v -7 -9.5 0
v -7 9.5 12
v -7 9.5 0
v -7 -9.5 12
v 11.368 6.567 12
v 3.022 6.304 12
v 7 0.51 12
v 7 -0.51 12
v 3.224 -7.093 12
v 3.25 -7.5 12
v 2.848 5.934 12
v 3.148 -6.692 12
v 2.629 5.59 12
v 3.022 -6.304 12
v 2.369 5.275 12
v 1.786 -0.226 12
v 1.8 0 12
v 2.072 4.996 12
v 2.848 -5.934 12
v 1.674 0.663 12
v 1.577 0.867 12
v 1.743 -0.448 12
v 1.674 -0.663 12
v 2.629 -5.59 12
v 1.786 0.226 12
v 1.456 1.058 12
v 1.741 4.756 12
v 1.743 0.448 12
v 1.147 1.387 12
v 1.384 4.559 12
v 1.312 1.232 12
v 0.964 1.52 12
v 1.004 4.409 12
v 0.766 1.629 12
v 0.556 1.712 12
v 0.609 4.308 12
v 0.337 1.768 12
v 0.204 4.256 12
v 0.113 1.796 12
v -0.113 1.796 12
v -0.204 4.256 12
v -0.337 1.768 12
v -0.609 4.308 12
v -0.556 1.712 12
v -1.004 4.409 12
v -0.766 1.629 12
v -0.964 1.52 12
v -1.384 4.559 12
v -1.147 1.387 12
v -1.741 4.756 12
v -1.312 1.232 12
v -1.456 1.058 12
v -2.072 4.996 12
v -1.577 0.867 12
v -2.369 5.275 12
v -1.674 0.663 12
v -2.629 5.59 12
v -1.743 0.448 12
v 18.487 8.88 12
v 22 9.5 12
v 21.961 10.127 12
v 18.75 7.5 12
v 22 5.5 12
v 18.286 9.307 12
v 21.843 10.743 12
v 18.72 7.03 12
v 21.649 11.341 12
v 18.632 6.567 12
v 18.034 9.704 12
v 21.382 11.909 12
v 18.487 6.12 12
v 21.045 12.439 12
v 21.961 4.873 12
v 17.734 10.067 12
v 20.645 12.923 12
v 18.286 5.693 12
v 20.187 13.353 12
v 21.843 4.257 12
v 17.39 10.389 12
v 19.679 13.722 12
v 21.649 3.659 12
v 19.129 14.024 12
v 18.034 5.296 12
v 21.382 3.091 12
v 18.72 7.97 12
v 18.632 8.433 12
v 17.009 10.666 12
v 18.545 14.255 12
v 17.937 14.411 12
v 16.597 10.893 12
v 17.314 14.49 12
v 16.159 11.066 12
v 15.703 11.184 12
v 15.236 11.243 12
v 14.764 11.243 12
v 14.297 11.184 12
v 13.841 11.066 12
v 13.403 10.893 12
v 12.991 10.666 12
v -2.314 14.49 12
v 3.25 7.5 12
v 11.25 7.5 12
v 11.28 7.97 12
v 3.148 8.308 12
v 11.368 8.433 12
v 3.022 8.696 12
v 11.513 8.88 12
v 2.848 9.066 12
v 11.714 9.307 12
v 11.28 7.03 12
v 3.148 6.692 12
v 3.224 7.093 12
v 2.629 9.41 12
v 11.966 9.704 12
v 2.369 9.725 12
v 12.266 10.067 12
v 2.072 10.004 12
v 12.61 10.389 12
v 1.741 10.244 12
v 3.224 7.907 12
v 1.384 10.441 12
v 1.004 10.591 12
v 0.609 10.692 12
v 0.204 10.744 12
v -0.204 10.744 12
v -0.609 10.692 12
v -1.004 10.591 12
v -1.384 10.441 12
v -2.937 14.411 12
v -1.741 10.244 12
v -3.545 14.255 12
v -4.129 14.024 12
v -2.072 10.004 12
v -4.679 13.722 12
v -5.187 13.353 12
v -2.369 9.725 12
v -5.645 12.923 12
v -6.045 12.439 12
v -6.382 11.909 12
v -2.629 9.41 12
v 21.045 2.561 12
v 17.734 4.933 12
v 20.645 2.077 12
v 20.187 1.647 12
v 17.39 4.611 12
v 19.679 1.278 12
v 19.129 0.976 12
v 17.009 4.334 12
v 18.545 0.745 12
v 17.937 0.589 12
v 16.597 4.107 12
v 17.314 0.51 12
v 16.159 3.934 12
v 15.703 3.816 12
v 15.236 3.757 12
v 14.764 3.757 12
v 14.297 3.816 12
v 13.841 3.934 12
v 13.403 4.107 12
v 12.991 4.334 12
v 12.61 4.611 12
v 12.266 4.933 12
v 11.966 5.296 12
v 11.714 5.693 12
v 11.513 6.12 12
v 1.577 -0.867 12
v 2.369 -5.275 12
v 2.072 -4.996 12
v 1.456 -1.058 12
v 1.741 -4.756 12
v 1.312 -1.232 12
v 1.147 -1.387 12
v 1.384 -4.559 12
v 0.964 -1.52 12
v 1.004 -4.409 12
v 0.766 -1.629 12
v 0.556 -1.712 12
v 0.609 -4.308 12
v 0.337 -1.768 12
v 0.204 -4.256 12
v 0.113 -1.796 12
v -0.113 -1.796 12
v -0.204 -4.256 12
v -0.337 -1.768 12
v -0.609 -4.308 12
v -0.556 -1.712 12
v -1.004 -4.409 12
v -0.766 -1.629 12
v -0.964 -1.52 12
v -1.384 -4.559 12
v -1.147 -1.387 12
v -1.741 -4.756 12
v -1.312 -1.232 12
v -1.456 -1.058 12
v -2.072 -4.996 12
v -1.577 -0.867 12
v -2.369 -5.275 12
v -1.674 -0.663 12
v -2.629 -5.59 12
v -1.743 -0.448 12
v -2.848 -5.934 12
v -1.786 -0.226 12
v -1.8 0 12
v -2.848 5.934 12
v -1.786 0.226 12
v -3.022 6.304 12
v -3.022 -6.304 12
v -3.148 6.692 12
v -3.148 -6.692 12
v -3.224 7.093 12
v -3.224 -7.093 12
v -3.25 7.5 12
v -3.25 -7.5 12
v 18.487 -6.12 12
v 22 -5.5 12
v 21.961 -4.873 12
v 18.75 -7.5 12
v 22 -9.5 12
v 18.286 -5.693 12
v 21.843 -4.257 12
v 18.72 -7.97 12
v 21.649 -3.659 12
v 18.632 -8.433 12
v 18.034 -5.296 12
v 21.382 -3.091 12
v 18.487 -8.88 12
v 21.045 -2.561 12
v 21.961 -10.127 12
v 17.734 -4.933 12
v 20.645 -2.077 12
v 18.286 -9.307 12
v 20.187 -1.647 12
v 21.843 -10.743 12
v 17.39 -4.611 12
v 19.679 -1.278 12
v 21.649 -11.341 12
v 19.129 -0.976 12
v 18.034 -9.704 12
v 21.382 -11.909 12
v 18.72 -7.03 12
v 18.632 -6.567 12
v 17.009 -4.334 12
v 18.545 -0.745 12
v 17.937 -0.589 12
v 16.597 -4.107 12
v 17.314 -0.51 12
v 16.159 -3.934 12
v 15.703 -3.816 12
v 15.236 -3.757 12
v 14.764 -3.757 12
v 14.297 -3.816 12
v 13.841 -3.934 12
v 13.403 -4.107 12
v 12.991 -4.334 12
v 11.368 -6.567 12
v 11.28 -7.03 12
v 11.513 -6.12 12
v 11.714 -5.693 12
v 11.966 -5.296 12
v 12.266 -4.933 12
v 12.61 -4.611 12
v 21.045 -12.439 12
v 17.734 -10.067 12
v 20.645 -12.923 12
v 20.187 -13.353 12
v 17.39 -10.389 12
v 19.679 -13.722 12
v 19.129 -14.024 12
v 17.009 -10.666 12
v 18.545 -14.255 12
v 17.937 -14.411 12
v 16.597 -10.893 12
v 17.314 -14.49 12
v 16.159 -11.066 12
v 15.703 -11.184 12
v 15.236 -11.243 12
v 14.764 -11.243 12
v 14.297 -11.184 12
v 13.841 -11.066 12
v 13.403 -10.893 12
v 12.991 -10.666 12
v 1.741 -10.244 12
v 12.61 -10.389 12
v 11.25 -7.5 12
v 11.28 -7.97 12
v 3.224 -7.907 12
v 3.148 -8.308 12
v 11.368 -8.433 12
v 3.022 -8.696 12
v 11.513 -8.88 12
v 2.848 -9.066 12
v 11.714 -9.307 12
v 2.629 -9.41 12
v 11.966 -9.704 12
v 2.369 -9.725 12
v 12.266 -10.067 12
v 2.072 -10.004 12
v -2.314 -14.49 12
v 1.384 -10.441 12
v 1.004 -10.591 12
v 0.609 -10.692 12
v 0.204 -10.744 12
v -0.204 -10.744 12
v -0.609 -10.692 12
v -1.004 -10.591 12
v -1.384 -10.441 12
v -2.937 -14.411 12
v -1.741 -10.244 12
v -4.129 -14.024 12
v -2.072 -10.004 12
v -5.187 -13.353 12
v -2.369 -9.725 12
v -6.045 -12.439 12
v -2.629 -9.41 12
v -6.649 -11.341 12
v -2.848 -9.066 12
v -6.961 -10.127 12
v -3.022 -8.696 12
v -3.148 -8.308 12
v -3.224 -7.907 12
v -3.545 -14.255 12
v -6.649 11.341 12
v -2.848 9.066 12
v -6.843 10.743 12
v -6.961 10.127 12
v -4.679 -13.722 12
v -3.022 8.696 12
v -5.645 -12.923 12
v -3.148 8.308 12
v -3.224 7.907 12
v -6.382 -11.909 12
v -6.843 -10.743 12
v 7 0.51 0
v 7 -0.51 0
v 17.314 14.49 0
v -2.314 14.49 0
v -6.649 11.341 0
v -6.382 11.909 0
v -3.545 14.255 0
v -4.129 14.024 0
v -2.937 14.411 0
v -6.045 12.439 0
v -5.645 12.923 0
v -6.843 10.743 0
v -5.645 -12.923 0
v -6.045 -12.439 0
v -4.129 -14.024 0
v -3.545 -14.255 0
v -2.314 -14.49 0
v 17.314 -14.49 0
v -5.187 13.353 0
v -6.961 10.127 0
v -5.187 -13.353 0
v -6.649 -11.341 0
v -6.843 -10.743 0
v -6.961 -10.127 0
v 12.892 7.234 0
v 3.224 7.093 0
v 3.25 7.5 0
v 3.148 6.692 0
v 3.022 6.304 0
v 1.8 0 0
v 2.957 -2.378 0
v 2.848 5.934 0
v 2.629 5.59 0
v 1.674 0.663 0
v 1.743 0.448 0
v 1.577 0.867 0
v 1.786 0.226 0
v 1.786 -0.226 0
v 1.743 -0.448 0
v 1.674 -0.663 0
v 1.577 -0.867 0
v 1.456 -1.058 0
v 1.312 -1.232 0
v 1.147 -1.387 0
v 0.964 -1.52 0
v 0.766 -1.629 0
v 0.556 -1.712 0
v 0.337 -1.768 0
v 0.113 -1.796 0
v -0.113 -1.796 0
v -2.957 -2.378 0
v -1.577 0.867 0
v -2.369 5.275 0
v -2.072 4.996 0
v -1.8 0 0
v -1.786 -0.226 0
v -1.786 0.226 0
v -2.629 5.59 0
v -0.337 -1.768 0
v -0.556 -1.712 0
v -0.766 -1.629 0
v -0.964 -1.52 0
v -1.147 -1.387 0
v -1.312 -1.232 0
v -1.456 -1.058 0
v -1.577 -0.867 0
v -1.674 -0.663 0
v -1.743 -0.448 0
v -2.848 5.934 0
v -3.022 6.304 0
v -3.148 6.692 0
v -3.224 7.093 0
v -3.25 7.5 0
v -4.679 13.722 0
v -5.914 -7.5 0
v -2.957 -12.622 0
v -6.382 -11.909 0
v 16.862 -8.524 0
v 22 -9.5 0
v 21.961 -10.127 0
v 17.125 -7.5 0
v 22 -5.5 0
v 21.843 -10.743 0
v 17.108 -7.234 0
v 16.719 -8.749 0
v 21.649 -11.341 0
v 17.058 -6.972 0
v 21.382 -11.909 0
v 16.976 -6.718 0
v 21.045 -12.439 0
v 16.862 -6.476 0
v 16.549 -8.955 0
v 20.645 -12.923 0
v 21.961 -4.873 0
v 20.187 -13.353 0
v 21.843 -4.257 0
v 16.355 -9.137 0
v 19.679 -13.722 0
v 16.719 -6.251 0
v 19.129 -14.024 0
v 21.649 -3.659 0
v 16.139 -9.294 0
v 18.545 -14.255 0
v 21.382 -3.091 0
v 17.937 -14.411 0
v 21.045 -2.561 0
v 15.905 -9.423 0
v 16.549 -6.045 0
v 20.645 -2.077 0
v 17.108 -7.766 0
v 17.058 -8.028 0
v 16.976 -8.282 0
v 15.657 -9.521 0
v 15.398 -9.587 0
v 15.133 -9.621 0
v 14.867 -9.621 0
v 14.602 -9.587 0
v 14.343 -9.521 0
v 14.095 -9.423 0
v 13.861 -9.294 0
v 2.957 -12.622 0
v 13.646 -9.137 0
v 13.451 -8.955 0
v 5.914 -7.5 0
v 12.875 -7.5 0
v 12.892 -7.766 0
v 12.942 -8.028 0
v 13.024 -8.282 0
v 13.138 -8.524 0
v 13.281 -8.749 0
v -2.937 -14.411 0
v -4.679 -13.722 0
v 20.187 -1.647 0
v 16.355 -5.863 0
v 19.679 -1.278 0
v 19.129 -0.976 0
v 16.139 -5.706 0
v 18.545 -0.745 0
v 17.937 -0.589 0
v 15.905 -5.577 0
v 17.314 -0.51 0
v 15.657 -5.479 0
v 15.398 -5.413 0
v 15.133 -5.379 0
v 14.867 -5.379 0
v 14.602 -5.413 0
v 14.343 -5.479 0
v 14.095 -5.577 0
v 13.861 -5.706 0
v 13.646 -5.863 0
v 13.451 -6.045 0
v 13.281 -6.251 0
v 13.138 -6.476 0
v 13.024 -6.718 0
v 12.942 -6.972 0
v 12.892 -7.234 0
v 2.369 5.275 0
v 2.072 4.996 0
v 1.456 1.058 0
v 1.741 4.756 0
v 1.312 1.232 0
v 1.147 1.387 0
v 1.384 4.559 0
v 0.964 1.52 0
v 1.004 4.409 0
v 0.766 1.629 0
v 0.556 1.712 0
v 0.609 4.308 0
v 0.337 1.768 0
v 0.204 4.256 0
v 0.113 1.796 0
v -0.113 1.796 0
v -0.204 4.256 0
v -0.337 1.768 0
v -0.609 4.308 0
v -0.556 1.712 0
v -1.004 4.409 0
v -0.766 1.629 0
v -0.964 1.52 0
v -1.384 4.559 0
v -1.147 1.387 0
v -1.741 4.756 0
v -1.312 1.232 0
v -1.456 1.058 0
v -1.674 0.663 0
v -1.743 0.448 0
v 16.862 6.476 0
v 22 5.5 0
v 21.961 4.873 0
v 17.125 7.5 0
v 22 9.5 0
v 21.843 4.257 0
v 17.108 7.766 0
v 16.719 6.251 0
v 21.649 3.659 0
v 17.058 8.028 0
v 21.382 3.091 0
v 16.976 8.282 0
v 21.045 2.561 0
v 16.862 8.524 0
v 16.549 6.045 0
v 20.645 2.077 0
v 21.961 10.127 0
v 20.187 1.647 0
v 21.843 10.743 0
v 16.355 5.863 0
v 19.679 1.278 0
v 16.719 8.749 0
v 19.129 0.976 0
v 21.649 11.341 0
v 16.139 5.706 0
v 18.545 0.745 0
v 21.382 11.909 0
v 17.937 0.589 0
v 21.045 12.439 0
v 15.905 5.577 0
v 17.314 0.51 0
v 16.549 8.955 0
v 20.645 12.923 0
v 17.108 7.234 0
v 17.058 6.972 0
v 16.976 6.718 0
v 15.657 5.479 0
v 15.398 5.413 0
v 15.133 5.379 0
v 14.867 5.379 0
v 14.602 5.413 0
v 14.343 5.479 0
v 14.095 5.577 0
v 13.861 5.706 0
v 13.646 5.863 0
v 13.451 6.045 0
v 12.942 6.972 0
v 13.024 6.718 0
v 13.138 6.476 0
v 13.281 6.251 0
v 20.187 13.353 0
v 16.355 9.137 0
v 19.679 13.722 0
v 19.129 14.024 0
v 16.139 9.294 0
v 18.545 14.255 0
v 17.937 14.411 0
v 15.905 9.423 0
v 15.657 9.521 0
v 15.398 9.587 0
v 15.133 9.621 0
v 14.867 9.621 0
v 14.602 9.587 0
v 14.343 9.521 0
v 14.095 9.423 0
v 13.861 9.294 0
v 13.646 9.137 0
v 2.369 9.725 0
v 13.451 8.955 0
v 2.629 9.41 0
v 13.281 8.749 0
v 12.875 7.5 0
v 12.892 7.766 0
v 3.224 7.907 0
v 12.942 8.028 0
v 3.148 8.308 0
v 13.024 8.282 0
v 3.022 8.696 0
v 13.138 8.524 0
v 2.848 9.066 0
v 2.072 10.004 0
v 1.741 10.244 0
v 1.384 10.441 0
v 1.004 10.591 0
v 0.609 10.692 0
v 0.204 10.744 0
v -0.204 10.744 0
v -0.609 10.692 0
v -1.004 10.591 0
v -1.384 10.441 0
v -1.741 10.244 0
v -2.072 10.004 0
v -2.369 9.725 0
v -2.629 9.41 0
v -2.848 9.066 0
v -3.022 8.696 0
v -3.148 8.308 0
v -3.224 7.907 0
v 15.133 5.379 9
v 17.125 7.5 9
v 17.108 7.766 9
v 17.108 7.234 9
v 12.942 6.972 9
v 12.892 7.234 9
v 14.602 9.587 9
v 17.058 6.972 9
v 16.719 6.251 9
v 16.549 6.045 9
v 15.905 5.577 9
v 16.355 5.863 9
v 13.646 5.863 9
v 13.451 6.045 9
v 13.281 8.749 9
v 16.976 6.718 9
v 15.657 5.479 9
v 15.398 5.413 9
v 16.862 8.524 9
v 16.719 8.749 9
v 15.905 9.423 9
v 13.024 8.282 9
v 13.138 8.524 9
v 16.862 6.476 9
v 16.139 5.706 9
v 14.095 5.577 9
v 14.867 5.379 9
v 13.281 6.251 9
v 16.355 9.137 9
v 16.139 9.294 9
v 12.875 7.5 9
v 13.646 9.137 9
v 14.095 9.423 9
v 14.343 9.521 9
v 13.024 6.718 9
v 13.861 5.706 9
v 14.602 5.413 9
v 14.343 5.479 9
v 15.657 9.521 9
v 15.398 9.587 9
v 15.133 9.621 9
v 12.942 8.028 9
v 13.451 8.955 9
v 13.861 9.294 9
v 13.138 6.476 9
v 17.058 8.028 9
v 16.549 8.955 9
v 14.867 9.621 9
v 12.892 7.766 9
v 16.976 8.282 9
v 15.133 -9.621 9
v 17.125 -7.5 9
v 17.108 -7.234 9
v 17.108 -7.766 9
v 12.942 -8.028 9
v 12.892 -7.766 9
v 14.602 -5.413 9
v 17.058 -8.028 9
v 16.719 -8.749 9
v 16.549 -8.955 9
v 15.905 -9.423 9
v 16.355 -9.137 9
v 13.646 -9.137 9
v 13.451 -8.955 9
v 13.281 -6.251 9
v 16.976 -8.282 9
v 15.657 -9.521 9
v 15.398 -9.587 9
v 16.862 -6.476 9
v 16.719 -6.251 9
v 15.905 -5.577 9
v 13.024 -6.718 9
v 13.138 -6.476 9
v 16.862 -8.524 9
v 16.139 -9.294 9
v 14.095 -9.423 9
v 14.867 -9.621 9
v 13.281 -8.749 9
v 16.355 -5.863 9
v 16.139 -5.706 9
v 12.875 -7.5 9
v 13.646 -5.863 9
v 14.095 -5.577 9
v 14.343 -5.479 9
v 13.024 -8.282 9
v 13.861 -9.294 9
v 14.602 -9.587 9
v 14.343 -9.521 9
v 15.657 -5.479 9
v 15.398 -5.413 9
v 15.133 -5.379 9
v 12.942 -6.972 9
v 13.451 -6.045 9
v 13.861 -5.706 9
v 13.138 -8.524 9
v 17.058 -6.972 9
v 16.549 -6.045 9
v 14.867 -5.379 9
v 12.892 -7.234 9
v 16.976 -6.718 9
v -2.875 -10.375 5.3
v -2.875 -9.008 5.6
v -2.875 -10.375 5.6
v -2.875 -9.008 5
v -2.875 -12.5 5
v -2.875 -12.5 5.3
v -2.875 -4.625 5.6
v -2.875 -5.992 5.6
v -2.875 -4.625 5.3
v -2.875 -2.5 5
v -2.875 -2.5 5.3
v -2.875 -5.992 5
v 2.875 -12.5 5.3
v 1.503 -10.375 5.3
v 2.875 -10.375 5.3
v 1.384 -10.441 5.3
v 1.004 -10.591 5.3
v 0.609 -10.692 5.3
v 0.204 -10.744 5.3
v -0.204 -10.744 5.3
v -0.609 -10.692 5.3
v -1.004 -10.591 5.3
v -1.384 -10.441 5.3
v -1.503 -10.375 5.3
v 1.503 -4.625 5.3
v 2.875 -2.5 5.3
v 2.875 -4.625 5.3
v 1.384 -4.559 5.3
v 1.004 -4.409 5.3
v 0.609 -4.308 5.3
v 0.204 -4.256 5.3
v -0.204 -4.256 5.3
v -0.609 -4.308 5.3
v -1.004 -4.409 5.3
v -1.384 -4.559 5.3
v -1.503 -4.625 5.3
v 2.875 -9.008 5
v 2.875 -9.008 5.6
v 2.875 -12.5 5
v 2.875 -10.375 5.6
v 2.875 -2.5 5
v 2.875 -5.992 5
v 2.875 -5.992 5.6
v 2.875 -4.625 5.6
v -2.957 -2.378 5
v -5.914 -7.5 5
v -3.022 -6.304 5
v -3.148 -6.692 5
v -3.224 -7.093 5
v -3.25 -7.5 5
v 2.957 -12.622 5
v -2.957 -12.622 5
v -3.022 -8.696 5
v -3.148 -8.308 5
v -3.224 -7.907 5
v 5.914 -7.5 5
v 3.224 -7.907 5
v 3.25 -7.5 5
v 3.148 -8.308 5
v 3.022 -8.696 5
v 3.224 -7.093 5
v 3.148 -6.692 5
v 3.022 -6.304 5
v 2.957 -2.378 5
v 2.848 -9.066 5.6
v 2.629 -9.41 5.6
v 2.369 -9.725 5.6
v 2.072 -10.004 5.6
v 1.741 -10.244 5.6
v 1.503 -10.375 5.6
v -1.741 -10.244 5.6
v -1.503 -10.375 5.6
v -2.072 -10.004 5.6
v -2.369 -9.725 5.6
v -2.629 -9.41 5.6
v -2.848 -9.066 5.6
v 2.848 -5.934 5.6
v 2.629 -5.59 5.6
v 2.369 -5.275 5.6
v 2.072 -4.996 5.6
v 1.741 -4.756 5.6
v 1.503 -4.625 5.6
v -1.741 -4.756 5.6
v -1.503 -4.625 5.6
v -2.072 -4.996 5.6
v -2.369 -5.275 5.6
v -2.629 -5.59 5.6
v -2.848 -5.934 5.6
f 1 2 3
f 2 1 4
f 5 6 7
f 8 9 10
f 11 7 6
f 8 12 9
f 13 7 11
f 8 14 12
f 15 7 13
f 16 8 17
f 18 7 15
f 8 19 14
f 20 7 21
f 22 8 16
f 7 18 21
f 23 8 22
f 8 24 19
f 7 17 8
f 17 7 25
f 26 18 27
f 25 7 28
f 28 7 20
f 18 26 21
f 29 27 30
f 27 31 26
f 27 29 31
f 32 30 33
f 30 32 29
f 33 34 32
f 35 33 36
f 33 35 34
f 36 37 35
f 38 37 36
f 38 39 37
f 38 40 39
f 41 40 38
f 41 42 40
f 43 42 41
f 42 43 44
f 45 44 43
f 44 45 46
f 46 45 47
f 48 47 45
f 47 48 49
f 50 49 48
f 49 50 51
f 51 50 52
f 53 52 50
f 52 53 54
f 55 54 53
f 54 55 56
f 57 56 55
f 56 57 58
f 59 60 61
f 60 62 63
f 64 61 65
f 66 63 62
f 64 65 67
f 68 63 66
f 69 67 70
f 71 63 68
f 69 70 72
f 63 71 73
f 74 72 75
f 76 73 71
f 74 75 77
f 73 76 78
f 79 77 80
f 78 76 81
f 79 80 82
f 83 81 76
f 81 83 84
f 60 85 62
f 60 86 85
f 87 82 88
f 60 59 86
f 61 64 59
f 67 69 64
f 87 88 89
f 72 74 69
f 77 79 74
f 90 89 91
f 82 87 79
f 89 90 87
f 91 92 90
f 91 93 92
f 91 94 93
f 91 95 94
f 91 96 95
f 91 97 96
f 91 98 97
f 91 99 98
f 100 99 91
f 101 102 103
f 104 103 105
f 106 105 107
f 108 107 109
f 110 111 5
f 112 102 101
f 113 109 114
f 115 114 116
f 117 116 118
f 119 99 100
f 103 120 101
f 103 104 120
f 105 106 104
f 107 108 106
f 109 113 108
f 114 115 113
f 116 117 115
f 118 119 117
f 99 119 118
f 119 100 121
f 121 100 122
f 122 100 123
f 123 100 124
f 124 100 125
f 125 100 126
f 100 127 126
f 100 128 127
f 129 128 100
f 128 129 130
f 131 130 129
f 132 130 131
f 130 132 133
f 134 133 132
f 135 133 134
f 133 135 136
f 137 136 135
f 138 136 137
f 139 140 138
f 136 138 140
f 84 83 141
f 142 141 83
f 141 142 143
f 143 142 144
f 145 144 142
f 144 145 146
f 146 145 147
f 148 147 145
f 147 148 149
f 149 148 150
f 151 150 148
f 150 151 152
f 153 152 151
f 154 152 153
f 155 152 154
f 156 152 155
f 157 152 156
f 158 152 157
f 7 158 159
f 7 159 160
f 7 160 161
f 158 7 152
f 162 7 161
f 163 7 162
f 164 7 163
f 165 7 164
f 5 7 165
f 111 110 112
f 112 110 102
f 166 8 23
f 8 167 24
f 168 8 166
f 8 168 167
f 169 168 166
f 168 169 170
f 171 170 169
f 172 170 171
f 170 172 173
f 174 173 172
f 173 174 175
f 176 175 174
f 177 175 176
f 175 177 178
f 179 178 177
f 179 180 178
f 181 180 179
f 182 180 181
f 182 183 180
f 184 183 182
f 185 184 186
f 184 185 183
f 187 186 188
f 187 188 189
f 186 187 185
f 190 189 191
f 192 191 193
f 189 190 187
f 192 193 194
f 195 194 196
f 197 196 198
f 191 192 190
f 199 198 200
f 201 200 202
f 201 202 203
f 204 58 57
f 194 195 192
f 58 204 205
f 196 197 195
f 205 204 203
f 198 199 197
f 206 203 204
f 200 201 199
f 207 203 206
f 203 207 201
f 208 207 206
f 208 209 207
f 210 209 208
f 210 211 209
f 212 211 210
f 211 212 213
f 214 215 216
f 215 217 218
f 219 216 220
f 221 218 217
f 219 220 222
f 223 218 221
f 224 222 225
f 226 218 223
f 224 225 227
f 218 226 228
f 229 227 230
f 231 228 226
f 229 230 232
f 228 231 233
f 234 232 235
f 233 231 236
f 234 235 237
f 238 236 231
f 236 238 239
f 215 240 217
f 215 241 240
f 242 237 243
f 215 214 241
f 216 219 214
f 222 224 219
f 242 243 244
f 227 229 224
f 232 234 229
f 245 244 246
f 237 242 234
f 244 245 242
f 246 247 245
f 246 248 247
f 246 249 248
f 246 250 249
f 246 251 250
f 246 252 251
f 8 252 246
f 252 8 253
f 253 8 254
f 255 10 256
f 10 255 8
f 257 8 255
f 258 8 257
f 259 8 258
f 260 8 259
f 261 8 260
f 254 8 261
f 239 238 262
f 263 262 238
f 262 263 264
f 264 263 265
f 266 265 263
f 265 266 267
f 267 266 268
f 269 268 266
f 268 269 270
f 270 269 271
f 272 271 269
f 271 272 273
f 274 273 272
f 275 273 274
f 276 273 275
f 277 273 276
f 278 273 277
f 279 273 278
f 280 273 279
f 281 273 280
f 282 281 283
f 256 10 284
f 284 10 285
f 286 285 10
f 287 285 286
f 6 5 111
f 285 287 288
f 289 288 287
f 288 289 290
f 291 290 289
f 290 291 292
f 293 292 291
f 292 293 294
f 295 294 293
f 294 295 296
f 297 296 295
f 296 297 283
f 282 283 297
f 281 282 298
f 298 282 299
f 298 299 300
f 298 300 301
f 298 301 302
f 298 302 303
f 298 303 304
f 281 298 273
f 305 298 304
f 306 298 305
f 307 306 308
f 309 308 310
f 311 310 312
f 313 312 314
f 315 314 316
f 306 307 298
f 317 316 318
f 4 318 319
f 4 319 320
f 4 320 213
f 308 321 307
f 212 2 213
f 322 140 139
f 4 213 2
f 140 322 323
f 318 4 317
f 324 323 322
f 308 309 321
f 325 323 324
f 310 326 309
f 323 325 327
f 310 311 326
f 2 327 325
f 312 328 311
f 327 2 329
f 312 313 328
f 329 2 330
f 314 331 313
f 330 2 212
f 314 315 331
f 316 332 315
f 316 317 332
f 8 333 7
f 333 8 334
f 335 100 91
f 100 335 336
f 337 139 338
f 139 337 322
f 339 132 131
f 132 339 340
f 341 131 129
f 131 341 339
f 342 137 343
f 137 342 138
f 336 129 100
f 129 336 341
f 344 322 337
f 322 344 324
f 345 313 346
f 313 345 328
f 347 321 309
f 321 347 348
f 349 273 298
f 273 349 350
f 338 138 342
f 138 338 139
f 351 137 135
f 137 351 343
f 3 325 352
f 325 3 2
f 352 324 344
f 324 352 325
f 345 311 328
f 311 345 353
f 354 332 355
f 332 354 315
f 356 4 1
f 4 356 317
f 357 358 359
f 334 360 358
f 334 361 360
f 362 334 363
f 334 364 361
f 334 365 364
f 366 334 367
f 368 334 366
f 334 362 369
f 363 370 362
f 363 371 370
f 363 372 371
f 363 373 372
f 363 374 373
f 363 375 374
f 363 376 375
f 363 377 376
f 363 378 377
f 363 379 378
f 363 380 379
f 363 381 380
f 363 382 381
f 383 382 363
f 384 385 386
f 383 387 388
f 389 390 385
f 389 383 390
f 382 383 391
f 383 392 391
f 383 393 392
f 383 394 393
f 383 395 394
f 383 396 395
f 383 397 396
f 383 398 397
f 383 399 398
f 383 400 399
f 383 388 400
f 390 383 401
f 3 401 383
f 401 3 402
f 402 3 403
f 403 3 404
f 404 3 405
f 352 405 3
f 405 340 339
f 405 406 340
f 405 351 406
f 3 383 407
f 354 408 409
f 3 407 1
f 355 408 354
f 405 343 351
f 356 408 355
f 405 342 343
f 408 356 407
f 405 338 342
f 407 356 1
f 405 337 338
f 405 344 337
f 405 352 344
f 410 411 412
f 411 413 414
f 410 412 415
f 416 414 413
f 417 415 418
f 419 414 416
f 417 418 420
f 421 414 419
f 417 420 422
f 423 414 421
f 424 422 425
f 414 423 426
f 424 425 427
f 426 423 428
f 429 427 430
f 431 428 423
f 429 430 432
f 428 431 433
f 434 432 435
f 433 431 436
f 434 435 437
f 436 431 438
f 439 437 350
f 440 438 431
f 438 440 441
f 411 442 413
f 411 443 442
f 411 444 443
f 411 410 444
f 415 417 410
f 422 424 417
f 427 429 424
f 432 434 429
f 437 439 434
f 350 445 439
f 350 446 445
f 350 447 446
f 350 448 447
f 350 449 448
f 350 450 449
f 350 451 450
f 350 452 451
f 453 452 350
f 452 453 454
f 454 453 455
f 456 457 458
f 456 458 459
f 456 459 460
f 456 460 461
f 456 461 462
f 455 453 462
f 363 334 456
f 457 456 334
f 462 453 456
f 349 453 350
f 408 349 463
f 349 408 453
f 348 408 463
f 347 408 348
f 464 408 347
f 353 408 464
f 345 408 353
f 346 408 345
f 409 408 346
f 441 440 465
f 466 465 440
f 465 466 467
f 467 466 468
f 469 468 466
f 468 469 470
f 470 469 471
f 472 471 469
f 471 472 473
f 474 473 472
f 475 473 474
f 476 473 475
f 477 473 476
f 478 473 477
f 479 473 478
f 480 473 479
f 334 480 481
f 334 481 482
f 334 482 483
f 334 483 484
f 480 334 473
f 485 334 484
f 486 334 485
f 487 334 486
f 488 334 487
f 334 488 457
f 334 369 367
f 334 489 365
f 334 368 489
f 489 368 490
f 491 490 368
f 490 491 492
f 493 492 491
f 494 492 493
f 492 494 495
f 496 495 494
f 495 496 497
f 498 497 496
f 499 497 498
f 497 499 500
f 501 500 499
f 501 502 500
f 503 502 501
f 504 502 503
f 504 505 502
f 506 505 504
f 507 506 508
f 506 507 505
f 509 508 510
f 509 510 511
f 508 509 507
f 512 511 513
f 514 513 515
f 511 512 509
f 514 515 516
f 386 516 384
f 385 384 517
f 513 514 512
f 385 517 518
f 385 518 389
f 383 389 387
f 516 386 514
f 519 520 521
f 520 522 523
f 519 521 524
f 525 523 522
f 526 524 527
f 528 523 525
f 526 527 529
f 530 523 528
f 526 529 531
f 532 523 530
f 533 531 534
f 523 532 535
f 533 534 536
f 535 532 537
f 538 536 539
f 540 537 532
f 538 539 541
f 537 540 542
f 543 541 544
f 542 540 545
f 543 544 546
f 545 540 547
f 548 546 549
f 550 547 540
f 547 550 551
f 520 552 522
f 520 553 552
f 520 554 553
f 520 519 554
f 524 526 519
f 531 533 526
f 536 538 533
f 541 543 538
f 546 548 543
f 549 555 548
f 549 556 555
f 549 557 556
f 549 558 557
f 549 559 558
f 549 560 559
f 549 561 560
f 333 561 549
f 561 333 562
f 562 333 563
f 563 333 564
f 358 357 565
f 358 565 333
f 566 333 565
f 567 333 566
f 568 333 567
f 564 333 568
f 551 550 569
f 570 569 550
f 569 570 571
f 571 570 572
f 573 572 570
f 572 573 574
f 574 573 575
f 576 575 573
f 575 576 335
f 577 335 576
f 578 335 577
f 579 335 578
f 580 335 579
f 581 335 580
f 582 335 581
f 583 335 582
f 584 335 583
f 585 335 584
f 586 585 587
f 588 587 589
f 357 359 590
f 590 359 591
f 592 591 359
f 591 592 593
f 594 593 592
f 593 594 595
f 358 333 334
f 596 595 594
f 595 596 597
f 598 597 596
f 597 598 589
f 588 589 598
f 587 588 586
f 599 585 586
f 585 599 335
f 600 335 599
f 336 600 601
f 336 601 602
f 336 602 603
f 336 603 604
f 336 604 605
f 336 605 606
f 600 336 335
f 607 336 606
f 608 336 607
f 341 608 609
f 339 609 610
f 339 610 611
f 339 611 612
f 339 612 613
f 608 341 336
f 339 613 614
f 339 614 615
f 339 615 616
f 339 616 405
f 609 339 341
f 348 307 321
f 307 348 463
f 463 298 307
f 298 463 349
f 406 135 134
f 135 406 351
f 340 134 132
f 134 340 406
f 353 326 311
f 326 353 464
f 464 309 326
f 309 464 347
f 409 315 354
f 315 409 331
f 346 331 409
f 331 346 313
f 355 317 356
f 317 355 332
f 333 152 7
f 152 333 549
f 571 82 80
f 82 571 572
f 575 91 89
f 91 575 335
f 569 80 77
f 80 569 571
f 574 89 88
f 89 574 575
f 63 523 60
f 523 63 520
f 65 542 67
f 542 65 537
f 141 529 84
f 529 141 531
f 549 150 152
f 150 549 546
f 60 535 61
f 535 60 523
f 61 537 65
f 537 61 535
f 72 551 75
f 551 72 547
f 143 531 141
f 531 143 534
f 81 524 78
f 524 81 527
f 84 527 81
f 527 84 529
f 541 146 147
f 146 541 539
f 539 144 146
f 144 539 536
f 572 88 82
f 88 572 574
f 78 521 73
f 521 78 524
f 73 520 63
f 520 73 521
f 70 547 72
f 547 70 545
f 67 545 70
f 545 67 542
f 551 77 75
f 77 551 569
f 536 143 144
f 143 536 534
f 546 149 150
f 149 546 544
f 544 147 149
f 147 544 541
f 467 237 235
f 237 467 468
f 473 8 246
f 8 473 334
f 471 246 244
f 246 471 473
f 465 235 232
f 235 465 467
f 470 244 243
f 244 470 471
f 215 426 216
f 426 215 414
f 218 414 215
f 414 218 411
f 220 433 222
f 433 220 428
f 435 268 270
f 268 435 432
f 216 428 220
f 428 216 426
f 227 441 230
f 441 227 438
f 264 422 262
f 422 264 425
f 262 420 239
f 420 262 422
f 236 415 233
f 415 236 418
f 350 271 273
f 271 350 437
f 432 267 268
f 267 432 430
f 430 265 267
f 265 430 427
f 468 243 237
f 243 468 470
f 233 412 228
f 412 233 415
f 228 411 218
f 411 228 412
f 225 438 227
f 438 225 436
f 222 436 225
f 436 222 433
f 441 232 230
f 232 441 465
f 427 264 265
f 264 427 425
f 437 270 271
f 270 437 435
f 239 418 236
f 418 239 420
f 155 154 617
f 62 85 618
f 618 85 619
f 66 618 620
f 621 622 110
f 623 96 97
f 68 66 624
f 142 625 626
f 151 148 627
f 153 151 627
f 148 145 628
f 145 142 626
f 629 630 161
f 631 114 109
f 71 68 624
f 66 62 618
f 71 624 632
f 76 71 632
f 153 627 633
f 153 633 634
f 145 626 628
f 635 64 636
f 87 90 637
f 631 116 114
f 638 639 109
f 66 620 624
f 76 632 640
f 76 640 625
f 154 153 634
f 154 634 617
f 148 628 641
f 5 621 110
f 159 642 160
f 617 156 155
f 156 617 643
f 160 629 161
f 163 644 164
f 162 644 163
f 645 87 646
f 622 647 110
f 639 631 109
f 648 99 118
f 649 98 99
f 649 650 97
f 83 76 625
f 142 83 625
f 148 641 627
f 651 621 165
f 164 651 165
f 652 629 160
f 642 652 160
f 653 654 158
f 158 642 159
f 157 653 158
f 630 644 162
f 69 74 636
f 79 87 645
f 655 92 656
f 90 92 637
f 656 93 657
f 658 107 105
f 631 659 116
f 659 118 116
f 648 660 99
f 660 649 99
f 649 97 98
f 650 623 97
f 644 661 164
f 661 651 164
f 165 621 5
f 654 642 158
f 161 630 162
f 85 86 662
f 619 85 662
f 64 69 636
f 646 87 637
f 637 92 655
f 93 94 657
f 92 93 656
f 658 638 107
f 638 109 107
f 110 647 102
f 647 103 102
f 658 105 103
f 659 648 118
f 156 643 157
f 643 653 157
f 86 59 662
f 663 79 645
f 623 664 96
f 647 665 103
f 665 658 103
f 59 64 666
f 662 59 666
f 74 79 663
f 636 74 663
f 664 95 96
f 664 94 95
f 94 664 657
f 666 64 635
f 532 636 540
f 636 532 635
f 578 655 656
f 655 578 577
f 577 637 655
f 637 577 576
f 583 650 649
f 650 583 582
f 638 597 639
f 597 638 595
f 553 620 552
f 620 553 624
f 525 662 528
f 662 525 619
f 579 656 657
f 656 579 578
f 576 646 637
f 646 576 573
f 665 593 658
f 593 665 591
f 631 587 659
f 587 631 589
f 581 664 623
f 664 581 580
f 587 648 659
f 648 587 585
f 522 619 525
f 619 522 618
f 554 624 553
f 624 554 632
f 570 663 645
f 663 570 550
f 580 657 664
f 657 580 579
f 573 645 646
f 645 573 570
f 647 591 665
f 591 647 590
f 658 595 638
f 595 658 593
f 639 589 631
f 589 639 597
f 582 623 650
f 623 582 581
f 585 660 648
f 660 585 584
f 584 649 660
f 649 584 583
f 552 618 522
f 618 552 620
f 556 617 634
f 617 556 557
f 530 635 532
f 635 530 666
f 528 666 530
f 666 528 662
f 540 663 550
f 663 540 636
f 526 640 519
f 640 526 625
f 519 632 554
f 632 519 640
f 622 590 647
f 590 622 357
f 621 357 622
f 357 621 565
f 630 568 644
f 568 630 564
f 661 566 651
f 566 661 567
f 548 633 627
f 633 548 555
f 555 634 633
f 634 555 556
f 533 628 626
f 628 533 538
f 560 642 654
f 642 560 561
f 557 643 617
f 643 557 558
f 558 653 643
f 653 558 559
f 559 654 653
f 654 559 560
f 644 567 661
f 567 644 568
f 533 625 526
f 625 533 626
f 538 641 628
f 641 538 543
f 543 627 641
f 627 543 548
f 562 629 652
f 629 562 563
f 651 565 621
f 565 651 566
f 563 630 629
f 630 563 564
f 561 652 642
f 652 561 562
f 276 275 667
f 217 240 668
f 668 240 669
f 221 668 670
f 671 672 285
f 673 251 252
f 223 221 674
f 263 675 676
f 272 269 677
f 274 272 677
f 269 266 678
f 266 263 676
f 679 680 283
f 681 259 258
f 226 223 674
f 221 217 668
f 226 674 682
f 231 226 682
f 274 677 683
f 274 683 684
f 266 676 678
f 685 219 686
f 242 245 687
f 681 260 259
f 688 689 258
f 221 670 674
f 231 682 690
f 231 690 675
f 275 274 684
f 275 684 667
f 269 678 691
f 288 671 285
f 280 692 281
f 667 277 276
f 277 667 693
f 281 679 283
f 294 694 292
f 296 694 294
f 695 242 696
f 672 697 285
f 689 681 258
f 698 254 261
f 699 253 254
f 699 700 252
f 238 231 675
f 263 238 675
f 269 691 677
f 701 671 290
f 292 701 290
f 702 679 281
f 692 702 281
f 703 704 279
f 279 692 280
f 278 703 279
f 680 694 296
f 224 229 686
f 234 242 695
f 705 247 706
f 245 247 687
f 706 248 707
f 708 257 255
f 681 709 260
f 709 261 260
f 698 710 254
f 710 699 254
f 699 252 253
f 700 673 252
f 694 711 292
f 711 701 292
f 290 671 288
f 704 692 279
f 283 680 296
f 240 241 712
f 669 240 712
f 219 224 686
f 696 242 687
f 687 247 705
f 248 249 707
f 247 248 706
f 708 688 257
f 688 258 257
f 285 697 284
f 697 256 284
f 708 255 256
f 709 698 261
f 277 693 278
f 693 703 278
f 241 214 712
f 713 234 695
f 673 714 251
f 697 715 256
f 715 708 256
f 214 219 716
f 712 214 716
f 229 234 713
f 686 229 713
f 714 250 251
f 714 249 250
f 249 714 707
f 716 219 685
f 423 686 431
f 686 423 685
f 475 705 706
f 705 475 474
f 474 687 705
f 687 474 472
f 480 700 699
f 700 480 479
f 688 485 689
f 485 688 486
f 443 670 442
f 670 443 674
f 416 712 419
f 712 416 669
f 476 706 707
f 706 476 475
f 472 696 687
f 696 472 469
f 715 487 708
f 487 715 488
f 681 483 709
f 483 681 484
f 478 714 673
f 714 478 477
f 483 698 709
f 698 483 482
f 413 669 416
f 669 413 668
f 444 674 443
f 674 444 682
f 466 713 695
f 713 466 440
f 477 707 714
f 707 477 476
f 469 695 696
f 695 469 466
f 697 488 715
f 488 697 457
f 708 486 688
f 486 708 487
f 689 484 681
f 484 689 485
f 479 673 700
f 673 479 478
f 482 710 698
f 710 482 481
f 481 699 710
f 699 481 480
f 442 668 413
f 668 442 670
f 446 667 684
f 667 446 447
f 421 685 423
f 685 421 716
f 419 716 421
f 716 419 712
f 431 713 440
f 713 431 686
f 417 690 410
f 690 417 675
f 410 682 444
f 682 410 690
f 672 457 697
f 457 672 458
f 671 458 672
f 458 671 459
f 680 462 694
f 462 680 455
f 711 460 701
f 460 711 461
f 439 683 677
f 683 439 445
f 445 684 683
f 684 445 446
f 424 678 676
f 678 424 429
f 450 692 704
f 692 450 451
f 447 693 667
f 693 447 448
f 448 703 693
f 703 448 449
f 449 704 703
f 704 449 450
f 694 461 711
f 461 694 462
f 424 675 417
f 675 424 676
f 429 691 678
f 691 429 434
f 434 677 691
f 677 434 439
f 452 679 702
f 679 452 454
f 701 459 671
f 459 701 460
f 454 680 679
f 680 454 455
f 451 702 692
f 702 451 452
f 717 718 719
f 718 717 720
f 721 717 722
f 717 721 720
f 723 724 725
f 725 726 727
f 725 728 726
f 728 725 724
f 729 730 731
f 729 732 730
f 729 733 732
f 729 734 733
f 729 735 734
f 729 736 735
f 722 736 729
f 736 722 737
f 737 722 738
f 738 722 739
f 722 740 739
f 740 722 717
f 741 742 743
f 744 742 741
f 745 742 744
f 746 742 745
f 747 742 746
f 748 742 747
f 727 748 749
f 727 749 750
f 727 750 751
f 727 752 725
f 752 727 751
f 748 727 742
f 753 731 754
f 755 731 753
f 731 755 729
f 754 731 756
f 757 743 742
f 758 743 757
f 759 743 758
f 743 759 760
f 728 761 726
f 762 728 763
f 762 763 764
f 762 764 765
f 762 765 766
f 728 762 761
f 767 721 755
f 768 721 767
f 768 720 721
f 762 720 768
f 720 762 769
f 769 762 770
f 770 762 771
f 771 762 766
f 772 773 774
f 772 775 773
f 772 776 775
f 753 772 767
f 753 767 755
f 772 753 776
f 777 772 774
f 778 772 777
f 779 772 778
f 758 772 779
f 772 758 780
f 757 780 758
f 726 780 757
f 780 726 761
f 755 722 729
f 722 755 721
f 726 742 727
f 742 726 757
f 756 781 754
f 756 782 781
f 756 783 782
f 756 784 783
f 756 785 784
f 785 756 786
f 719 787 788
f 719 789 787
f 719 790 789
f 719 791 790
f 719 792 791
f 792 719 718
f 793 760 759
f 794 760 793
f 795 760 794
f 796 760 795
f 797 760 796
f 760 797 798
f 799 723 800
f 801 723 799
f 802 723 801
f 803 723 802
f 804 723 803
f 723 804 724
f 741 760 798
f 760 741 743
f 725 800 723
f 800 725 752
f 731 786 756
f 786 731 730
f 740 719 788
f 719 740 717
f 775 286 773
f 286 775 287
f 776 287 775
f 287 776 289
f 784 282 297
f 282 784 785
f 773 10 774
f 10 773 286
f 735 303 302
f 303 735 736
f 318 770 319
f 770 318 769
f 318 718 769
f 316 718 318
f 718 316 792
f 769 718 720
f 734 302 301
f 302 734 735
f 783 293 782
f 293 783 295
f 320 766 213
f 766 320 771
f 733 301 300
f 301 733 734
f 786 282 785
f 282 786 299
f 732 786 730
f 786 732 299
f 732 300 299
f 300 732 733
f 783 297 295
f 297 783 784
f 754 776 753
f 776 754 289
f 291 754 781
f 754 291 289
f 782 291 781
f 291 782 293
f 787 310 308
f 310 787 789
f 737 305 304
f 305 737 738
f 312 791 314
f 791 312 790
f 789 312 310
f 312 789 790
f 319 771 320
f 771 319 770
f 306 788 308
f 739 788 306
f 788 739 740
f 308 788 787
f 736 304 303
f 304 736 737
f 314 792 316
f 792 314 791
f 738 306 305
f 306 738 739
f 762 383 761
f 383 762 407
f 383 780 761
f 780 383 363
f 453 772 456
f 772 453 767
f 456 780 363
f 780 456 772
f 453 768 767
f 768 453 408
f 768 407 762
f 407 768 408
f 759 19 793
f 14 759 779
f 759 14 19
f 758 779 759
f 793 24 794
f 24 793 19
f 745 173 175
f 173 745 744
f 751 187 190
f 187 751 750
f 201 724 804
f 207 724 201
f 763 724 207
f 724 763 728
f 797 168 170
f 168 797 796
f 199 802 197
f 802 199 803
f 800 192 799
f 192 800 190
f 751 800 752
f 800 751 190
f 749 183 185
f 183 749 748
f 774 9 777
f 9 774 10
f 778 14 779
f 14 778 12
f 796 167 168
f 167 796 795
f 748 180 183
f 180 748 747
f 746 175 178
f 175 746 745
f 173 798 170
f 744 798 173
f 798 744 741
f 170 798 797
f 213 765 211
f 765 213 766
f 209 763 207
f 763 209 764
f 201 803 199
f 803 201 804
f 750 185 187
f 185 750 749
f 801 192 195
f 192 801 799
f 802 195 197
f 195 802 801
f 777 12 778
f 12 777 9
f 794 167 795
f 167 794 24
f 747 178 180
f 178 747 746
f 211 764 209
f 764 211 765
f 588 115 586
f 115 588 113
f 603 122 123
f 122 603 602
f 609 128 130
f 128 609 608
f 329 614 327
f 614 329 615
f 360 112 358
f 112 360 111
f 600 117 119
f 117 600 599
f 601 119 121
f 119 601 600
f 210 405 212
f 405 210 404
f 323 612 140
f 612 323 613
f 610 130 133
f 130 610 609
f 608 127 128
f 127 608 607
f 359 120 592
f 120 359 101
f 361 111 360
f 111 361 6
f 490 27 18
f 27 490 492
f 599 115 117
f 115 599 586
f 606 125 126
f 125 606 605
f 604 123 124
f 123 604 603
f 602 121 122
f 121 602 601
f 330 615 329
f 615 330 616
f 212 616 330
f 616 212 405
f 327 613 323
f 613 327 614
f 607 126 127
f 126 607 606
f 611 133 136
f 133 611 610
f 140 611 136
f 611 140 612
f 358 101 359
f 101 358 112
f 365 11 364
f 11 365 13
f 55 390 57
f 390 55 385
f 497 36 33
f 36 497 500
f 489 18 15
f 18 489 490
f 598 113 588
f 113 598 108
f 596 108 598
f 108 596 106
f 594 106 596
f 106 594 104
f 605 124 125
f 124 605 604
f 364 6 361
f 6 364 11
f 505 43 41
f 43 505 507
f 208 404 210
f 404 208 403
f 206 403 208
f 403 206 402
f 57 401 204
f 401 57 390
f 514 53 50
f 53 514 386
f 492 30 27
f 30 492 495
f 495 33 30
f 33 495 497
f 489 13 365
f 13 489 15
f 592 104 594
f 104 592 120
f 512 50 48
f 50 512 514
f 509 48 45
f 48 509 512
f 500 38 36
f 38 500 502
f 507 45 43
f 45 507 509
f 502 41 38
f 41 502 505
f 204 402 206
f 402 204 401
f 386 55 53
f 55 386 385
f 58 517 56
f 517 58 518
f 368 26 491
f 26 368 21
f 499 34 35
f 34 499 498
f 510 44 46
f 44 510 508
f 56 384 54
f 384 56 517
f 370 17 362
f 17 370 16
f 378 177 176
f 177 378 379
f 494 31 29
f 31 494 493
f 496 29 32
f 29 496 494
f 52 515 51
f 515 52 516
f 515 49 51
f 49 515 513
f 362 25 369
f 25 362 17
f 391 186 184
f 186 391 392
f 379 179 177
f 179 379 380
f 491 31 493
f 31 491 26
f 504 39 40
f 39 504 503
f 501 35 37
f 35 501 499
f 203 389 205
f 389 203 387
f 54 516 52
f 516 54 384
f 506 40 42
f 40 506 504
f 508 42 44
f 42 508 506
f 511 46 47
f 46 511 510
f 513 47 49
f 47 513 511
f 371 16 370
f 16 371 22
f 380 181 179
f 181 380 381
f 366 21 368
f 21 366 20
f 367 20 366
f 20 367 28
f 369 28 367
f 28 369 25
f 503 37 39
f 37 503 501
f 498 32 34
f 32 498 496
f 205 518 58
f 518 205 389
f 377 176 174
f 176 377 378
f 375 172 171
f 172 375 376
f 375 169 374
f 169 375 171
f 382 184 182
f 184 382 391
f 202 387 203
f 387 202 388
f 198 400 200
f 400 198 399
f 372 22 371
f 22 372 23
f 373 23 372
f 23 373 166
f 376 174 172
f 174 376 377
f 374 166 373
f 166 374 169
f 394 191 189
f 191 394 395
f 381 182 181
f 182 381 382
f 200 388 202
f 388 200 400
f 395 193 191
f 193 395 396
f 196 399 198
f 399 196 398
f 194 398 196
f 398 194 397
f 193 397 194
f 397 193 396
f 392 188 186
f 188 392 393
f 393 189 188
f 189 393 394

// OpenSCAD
$fn = 50;


difference() {
	union() {
		hull() {
			translate(v = [-2.0000000000, 9.5000000000, 0]) {
				cylinder(h = 12, r = 5);
			}
			translate(v = [2.0000000000, 9.5000000000, 0]) {
				cylinder(h = 12, r = 5);
			}
			translate(v = [-2.0000000000, -9.5000000000, 0]) {
				cylinder(h = 12, r = 5);
			}
			translate(v = [2.0000000000, -9.5000000000, 0]) {
				cylinder(h = 12, r = 5);
			}
		}
		translate(v = [7.5000000000, 7.5000000000, 0]) {
			hull() {
				translate(v = [-9.5000000000, 2.0000000000, 0]) {
					cylinder(h = 12, r = 5);
				}
				translate(v = [9.5000000000, 2.0000000000, 0]) {
					cylinder(h = 12, r = 5);
				}
				translate(v = [-9.5000000000, -2.0000000000, 0]) {
					cylinder(h = 12, r = 5);
				}
				translate(v = [9.5000000000, -2.0000000000, 0]) {
					cylinder(h = 12, r = 5);
				}
			}
		}
		translate(v = [7.5000000000, -7.5000000000, 0]) {
			hull() {
				translate(v = [-9.5000000000, 2.0000000000, 0]) {
					cylinder(h = 12, r = 5);
				}
				translate(v = [9.5000000000, 2.0000000000, 0]) {
					cylinder(h = 12, r = 5);
				}
				translate(v = [-9.5000000000, -2.0000000000, 0]) {
					cylinder(h = 12, r = 5);
				}
				translate(v = [9.5000000000, -2.0000000000, 0]) {
					cylinder(h = 12, r = 5);
				}
			}
		}
	}
	union() {
		translate(v = [15.0000000000, 7.5000000000, 12]) {
			rotate(a = [0, 0, 0]) {
				difference() {
					union() {
						#translate(v = [0, 0, -12.0000000000]) {
							cylinder(h = 12, r = 2.0000000000);
						}
						#translate(v = [0, 0, -3]) {
							cylinder(h = 3, r1 = 2.1250000000, r2 = 3.7500000000);
						}
						#translate(v = [0, 0, -12.0000000000]) {
							cylinder(h = 12, r = 2.1250000000);
						}
						#translate(v = [0, 0, -12.0000000000]) {
							cylinder(h = 12, r = 2.0000000000);
						}
					}
					union();
				}
			}
		}
		translate(v = [15.0000000000, -7.5000000000, 12]) {
			rotate(a = [0, 0, 0]) {
				difference() {
					union() {
						#translate(v = [0, 0, -12.0000000000]) {
							cylinder(h = 12, r = 2.0000000000);
						}
						#translate(v = [0, 0, -3]) {
							cylinder(h = 3, r1 = 2.1250000000, r2 = 3.7500000000);
						}
						#translate(v = [0, 0, -12.0000000000]) {
							cylinder(h = 12, r = 2.1250000000);
						}
						#translate(v = [0, 0, -12.0000000000]) {
							cylinder(h = 12, r = 2.0000000000);
						}
					}
					union();
				}
			}
		}
		translate(v = [0.0000000000, -7.5000000000, 0]) {
			rotate(a = [0, 0, 0]) {
				difference() {
					union() {
						#translate(v = [-2.8750000000, -5.0000000000, -0.3000000000]) {
							cube(size = [5.7500000000, 10, 0.3000000000]);
						}
						#translate(v = [-2.8750000000, -2.8750000000, -0.6000000000]) {
							cube(size = [5.7500000000, 5.7500000000, 0.3000000000]);
						}
						#translate(v = [-2.8750000000, -5.0000000000, 5]) {
							cube(size = [5.7500000000, 10, 0.3000000000]);
						}
						#translate(v = [-2.8750000000, -2.8750000000, 5.3000000000]) {
							cube(size = [5.7500000000, 5.7500000000, 0.3000000000]);
						}
						#translate(v = [0, 0, -100.0000000000]) {
							cylinder(h = 200, r = 3.2500000000);
						}
						#linear_extrude(height = 5) {
							polygon(points = [[5.9142500000, 0.0000000000], [2.9571250000, 5.1218907443], [-2.9571250000, 5.1218907443], [-5.9142500000, 0.0000000000], [-2.9571250000, -5.1218907443], [2.9571250000, -5.1218907443]]);
						}
						#translate(v = [-2.8750000000, -5.0000000000, -0.3000000000]) {
							cube(size = [5.7500000000, 10, 0.3000000000]);
						}
						#translate(v = [-2.8750000000, -2.8750000000, -0.6000000000]) {
							cube(size = [5.7500000000, 5.7500000000, 0.3000000000]);
						}
						#translate(v = [-2.8750000000, -5.0000000000, 5]) {
							cube(size = [5.7500000000, 10, 0.3000000000]);
						}
						#translate(v = [-2.8750000000, -2.8750000000, 5.3000000000]) {
							cube(size = [5.7500000000, 5.7500000000, 0.3000000000]);
						}
						#translate(v = [0, 0, -100.0000000000]) {
							cylinder(h = 200, r = 3.2500000000);
						}
						#translate(v = [-2.8750000000, -5.0000000000, -0.3000000000]) {
							cube(size = [5.7500000000, 10, 0.3000000000]);
						}
						#translate(v = [-2.8750000000, -2.8750000000, -0.6000000000]) {
							cube(size = [5.7500000000, 5.7500000000, 0.3000000000]);
						}
						#translate(v = [-2.8750000000, -5.0000000000, 5]) {
							cube(size = [5.7500000000, 10, 0.3000000000]);
						}
						#translate(v = [-2.8750000000, -2.8750000000, 5.3000000000]) {
							cube(size = [5.7500000000, 5.7500000000, 0.3000000000]);
						}
						#translate(v = [0, 0, -100.0000000000]) {
							cylinder(h = 200, r = 3.2500000000);
						}
					}
					union();
				}
			}
		}
		translate(v = [0.0000000000, -7.5000000000, 0]) {
			translate(v = [0, 0, -100]) {
				cylinder(h = 200, r = 3.2500000000);
			}
		}
		translate(v = [0.0000000000, 7.5000000000, 0]) {
			translate(v = [0, 0, -100]) {
				cylinder(h = 200, r = 3.2500000000);
			}
		}
		translate(v = [0.0000000000, -7.5000000000, 0]) {
			translate(v = [0, 0, -100]) {
				cylinder(h = 200, r = 1.8000000000);
			}
		}
		translate(v = [0, 0, -100]) {
			cylinder(h = 200, r = 1.8000000000);
		}
		translate(v = [0.0000000000, 7.5000000000, 0]) {
			translate(v = [0, 0, -100]) {
				cylinder(h = 200, r = 1.8000000000);
			}
		}
	}
}
